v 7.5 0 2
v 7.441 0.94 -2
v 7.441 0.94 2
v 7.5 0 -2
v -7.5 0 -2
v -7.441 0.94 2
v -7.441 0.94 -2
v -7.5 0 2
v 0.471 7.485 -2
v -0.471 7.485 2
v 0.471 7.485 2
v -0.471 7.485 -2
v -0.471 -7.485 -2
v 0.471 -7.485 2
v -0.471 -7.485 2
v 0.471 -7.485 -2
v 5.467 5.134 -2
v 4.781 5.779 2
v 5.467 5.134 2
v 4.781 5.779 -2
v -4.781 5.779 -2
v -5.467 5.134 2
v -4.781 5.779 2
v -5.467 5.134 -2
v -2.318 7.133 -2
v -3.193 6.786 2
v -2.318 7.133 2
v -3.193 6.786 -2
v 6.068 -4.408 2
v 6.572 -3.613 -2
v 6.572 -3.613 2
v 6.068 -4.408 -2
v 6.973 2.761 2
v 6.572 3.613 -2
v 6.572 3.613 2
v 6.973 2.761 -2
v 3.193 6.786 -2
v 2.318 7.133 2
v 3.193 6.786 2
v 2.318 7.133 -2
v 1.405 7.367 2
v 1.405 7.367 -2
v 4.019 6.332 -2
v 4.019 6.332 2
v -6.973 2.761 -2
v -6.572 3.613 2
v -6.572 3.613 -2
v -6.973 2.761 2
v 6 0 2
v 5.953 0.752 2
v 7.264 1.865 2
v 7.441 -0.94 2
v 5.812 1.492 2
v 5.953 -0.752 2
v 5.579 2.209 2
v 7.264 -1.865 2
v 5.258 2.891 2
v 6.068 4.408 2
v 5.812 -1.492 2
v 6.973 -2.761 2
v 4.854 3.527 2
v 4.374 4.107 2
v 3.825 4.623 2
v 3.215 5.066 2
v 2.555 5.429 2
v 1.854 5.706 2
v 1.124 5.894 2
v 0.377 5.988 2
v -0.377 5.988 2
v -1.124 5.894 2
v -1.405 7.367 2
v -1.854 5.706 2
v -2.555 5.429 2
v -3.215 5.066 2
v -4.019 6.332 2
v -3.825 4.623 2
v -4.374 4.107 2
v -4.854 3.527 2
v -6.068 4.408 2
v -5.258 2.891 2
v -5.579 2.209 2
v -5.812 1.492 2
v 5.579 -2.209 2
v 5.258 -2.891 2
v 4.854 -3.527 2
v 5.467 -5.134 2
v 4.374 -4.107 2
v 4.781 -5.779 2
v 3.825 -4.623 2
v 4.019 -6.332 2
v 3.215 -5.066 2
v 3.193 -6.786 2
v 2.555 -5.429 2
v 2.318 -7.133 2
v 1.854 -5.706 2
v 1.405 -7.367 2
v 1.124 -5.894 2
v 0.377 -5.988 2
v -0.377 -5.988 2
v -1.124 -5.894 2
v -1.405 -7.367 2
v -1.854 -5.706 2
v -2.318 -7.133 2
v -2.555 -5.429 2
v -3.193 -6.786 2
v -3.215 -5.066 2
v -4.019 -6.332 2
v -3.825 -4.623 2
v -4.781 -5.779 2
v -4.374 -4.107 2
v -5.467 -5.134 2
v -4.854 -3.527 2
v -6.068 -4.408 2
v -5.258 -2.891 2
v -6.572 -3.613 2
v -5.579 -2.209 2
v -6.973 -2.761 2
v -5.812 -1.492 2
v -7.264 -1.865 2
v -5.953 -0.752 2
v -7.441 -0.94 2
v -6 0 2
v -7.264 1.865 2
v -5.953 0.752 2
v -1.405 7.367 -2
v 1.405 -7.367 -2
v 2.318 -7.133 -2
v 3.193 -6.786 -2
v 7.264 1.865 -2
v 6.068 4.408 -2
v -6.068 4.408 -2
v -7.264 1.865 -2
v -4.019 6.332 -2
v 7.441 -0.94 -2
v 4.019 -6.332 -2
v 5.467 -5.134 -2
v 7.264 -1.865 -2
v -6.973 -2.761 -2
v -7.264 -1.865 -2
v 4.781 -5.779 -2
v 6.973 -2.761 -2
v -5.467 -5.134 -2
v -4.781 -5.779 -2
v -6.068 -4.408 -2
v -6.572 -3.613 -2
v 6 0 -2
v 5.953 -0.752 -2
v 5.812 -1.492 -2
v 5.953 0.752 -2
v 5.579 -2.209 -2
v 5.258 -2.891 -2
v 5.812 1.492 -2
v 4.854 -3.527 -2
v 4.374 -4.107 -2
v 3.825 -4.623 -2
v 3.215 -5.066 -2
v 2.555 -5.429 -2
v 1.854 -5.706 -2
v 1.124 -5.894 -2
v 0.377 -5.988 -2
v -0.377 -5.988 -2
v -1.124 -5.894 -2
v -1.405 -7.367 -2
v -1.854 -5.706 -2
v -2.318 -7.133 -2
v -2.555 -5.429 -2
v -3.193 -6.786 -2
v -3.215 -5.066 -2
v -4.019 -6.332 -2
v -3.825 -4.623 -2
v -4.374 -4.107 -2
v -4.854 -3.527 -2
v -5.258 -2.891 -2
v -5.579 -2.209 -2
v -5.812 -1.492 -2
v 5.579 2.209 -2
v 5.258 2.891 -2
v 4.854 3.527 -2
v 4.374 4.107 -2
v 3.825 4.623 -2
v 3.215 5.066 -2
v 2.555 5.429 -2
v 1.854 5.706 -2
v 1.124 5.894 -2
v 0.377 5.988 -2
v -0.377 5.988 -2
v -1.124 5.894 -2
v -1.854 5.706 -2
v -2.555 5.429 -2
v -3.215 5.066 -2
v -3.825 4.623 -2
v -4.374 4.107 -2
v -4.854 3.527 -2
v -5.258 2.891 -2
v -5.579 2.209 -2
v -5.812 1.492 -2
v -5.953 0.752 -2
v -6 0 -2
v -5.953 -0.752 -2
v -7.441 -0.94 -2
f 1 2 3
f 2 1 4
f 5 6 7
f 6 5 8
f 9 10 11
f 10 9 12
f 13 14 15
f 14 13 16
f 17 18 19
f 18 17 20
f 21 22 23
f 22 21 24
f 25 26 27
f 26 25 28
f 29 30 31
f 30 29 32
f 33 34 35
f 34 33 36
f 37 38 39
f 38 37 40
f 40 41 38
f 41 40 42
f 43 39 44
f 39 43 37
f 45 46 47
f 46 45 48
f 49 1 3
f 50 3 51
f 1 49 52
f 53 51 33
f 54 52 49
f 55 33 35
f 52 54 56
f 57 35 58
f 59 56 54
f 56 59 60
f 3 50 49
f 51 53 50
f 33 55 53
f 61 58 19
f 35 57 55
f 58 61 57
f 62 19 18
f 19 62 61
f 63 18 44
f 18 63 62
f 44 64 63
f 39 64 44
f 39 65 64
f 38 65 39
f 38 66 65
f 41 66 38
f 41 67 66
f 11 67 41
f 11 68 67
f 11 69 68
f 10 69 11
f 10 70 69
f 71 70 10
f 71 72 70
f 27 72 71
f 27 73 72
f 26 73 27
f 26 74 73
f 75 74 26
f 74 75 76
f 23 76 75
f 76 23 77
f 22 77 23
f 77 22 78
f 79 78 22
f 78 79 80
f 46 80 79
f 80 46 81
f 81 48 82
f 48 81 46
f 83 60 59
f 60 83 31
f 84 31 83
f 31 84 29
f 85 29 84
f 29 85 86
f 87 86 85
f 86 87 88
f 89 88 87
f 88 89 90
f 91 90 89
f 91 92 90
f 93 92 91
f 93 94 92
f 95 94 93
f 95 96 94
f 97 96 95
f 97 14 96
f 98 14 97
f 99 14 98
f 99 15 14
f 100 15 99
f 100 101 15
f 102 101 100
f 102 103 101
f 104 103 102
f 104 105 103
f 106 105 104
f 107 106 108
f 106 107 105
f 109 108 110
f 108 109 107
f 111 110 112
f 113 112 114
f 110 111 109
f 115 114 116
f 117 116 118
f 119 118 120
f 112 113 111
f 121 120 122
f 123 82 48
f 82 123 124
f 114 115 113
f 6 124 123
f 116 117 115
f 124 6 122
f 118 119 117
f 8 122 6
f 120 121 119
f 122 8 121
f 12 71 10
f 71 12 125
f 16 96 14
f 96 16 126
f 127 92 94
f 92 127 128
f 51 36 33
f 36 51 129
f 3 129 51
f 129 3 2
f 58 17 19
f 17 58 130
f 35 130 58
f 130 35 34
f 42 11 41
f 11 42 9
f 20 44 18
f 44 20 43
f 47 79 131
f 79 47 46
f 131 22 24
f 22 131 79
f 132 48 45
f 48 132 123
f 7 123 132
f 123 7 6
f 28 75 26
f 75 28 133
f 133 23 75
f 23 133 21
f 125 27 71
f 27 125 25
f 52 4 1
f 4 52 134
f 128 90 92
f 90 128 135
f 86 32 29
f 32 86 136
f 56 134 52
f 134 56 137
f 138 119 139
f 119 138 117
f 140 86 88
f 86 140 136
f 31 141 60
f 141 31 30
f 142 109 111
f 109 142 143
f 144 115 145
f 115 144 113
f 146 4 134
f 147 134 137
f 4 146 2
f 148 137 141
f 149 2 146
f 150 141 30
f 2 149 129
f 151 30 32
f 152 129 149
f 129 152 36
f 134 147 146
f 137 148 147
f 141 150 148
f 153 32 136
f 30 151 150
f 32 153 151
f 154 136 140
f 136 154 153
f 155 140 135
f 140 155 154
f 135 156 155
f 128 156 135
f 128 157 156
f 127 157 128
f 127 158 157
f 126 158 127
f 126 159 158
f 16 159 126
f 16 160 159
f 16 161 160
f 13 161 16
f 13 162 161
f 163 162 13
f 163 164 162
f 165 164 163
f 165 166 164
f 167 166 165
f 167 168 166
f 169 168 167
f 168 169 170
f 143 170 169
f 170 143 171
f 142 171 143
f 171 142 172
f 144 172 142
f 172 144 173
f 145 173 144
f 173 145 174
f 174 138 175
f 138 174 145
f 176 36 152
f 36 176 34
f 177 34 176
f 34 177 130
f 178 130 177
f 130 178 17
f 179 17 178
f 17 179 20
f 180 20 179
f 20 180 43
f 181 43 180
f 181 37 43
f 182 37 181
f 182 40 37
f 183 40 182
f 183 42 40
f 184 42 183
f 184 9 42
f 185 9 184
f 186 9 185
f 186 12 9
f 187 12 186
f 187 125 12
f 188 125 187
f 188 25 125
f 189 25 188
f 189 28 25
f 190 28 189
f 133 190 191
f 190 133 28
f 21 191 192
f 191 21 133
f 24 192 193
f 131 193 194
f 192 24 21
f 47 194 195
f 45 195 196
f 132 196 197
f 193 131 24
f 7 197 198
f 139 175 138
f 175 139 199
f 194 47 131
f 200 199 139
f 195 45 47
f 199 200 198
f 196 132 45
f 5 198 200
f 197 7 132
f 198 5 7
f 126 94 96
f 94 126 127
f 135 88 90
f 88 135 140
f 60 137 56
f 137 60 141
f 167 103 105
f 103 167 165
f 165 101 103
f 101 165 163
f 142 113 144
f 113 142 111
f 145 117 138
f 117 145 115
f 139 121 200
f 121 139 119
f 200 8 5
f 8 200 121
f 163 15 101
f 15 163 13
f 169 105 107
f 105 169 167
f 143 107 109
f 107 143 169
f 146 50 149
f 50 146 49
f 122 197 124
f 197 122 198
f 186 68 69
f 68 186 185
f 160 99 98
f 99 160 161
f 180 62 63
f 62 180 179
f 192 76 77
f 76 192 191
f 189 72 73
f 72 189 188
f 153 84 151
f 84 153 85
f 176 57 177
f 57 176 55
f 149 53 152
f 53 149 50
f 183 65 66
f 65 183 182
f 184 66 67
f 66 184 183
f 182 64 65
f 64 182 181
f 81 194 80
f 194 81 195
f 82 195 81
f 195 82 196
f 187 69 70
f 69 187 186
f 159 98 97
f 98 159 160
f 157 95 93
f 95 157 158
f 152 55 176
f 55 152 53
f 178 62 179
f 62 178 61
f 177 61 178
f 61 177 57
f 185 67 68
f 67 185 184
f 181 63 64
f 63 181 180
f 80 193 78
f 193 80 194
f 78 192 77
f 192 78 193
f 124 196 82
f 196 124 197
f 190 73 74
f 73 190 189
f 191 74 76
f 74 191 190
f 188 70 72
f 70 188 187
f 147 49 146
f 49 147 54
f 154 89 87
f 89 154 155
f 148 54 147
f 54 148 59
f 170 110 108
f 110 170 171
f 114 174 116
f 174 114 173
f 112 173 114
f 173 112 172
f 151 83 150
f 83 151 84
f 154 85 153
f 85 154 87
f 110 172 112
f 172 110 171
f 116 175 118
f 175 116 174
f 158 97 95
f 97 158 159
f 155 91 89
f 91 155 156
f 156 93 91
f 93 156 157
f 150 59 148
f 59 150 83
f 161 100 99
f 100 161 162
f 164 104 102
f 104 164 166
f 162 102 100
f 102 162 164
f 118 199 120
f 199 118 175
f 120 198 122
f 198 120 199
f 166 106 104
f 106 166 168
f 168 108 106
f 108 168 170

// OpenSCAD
$fn = 50;


difference() {
	union() {
		translate(v = [0, 0, -2.0000000000]) {
			cylinder(h = 4, r = 7.5000000000);
		}
	}
	union() {
		translate(v = [0, 0, -100.0000000000]) {
			cylinder(h = 200, r = 6);
		}
	}
}
